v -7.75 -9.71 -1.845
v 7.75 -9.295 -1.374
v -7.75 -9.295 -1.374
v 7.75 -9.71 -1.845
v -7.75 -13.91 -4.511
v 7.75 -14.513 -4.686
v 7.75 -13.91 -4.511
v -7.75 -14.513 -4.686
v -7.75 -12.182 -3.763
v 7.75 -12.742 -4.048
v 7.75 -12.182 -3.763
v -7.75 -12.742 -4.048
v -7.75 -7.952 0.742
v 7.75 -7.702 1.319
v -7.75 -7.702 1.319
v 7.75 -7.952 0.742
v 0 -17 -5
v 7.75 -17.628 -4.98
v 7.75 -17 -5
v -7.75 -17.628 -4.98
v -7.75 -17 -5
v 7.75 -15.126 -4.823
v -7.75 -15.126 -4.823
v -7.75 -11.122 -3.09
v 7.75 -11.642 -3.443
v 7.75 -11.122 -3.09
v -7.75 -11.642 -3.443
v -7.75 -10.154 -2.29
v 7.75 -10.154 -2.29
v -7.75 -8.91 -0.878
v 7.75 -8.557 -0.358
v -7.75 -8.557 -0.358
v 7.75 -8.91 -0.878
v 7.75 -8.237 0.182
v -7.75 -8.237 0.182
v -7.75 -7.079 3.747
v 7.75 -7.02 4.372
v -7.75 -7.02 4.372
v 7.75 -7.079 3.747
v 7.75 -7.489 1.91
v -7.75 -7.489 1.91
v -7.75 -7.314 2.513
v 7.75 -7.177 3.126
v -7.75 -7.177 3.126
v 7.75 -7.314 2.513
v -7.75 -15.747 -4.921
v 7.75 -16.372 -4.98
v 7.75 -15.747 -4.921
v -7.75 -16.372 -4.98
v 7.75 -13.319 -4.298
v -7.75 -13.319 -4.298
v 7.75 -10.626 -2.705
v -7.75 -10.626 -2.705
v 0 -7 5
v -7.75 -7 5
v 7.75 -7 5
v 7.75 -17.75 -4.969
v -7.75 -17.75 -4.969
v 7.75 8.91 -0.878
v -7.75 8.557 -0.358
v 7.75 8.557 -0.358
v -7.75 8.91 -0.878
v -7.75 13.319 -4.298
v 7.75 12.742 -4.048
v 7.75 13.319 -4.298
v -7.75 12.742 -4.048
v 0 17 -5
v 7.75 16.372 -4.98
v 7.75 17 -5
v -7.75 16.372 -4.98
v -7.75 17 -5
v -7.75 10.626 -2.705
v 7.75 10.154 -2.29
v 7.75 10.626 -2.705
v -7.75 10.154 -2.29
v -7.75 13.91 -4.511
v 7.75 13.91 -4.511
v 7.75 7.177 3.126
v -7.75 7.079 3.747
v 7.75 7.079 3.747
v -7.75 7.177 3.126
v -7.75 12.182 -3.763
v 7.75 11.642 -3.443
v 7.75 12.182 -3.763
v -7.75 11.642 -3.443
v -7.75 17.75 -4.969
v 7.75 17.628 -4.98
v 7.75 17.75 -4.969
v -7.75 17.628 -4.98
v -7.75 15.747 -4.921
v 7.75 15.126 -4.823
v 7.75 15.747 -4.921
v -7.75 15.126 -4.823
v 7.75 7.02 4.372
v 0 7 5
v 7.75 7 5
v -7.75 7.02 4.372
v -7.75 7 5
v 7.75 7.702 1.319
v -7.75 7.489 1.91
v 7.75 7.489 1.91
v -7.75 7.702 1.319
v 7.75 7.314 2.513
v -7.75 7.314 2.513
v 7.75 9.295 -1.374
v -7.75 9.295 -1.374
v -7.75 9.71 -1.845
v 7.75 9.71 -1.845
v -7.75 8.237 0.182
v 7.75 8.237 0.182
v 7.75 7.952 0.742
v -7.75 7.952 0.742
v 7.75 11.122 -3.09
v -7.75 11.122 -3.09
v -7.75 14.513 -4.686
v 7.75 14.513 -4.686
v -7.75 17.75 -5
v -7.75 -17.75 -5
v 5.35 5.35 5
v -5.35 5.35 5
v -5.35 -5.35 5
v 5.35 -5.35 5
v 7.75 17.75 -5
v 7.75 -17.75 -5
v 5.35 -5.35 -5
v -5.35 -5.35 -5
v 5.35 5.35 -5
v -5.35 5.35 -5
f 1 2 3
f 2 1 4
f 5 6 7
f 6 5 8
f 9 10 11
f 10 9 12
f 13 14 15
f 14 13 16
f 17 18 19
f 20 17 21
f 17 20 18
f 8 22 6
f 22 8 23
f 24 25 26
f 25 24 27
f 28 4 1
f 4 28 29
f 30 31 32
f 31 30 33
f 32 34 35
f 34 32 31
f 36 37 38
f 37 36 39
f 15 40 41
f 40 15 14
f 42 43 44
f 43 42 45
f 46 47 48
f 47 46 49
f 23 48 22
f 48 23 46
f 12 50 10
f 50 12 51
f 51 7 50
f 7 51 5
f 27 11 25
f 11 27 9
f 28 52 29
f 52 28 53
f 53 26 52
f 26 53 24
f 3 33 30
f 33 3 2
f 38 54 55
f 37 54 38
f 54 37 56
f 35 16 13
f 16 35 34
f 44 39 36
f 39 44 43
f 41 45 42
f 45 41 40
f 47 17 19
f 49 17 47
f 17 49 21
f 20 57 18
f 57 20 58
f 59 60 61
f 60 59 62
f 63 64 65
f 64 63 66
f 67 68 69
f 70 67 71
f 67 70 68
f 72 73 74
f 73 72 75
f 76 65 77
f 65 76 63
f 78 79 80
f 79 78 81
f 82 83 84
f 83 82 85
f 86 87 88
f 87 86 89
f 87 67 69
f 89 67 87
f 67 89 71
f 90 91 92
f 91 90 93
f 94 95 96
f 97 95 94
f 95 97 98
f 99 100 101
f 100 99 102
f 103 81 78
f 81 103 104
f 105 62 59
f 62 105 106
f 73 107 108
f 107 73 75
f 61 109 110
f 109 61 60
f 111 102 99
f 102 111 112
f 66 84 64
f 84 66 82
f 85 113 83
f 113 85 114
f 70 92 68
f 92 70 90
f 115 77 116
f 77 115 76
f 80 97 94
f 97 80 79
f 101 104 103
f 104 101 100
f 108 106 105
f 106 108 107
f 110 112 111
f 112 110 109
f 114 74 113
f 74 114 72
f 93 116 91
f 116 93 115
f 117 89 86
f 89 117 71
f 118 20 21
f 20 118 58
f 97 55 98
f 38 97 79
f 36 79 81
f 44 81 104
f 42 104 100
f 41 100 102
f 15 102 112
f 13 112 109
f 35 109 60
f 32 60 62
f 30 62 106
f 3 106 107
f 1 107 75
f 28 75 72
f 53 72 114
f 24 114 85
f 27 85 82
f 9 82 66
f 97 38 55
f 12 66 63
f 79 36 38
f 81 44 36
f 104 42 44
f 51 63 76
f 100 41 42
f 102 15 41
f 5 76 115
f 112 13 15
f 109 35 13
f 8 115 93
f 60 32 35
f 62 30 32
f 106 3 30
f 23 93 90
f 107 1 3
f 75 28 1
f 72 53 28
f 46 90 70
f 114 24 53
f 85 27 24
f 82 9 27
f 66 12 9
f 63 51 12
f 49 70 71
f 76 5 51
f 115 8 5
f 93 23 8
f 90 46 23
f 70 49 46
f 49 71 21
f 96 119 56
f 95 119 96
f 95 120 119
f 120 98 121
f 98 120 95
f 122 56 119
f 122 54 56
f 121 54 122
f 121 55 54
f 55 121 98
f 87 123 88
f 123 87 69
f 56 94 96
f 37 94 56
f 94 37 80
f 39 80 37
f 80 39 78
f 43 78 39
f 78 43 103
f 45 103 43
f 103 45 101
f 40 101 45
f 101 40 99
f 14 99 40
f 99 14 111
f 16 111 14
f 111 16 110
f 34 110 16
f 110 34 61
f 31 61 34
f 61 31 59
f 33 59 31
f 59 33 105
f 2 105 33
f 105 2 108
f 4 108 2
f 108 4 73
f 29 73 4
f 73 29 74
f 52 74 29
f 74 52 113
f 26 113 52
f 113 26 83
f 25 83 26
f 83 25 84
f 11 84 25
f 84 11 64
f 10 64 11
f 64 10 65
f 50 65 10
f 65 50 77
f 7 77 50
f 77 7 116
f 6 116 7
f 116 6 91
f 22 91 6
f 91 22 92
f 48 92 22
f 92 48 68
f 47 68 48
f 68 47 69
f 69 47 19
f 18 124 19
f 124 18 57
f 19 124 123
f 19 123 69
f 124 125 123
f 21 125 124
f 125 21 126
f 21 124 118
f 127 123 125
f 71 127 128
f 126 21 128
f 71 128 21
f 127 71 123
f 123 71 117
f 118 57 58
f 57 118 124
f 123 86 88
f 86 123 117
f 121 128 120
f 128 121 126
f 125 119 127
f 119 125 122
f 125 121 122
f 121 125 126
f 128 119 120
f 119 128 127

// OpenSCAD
base_thickness = 2.5;

module gps_arm_holder() {
    difference() {
        cube([10.5+5,10.5+25,10],center=true);
        cube([10.7,10.7,20],center=true);
        translate([0,-17,5])
            rotate([0,90,0]) {
                translate([-10,0,0])
                    cube([20,20,10.5+5.1],center=true);
                cylinder(h=10.5+5.1,d=20,center=true,$fn=100);
            }
        translate([0,17,5])
            rotate([0,90,0]) {
                translate([-10,0,0])
                    cube([20,20,10.5+5.1],center=true);
                cylinder(h=10.5+5.1,d=20,center=true,$fn=100);
            }
    }
}

gps_arm_holder();
